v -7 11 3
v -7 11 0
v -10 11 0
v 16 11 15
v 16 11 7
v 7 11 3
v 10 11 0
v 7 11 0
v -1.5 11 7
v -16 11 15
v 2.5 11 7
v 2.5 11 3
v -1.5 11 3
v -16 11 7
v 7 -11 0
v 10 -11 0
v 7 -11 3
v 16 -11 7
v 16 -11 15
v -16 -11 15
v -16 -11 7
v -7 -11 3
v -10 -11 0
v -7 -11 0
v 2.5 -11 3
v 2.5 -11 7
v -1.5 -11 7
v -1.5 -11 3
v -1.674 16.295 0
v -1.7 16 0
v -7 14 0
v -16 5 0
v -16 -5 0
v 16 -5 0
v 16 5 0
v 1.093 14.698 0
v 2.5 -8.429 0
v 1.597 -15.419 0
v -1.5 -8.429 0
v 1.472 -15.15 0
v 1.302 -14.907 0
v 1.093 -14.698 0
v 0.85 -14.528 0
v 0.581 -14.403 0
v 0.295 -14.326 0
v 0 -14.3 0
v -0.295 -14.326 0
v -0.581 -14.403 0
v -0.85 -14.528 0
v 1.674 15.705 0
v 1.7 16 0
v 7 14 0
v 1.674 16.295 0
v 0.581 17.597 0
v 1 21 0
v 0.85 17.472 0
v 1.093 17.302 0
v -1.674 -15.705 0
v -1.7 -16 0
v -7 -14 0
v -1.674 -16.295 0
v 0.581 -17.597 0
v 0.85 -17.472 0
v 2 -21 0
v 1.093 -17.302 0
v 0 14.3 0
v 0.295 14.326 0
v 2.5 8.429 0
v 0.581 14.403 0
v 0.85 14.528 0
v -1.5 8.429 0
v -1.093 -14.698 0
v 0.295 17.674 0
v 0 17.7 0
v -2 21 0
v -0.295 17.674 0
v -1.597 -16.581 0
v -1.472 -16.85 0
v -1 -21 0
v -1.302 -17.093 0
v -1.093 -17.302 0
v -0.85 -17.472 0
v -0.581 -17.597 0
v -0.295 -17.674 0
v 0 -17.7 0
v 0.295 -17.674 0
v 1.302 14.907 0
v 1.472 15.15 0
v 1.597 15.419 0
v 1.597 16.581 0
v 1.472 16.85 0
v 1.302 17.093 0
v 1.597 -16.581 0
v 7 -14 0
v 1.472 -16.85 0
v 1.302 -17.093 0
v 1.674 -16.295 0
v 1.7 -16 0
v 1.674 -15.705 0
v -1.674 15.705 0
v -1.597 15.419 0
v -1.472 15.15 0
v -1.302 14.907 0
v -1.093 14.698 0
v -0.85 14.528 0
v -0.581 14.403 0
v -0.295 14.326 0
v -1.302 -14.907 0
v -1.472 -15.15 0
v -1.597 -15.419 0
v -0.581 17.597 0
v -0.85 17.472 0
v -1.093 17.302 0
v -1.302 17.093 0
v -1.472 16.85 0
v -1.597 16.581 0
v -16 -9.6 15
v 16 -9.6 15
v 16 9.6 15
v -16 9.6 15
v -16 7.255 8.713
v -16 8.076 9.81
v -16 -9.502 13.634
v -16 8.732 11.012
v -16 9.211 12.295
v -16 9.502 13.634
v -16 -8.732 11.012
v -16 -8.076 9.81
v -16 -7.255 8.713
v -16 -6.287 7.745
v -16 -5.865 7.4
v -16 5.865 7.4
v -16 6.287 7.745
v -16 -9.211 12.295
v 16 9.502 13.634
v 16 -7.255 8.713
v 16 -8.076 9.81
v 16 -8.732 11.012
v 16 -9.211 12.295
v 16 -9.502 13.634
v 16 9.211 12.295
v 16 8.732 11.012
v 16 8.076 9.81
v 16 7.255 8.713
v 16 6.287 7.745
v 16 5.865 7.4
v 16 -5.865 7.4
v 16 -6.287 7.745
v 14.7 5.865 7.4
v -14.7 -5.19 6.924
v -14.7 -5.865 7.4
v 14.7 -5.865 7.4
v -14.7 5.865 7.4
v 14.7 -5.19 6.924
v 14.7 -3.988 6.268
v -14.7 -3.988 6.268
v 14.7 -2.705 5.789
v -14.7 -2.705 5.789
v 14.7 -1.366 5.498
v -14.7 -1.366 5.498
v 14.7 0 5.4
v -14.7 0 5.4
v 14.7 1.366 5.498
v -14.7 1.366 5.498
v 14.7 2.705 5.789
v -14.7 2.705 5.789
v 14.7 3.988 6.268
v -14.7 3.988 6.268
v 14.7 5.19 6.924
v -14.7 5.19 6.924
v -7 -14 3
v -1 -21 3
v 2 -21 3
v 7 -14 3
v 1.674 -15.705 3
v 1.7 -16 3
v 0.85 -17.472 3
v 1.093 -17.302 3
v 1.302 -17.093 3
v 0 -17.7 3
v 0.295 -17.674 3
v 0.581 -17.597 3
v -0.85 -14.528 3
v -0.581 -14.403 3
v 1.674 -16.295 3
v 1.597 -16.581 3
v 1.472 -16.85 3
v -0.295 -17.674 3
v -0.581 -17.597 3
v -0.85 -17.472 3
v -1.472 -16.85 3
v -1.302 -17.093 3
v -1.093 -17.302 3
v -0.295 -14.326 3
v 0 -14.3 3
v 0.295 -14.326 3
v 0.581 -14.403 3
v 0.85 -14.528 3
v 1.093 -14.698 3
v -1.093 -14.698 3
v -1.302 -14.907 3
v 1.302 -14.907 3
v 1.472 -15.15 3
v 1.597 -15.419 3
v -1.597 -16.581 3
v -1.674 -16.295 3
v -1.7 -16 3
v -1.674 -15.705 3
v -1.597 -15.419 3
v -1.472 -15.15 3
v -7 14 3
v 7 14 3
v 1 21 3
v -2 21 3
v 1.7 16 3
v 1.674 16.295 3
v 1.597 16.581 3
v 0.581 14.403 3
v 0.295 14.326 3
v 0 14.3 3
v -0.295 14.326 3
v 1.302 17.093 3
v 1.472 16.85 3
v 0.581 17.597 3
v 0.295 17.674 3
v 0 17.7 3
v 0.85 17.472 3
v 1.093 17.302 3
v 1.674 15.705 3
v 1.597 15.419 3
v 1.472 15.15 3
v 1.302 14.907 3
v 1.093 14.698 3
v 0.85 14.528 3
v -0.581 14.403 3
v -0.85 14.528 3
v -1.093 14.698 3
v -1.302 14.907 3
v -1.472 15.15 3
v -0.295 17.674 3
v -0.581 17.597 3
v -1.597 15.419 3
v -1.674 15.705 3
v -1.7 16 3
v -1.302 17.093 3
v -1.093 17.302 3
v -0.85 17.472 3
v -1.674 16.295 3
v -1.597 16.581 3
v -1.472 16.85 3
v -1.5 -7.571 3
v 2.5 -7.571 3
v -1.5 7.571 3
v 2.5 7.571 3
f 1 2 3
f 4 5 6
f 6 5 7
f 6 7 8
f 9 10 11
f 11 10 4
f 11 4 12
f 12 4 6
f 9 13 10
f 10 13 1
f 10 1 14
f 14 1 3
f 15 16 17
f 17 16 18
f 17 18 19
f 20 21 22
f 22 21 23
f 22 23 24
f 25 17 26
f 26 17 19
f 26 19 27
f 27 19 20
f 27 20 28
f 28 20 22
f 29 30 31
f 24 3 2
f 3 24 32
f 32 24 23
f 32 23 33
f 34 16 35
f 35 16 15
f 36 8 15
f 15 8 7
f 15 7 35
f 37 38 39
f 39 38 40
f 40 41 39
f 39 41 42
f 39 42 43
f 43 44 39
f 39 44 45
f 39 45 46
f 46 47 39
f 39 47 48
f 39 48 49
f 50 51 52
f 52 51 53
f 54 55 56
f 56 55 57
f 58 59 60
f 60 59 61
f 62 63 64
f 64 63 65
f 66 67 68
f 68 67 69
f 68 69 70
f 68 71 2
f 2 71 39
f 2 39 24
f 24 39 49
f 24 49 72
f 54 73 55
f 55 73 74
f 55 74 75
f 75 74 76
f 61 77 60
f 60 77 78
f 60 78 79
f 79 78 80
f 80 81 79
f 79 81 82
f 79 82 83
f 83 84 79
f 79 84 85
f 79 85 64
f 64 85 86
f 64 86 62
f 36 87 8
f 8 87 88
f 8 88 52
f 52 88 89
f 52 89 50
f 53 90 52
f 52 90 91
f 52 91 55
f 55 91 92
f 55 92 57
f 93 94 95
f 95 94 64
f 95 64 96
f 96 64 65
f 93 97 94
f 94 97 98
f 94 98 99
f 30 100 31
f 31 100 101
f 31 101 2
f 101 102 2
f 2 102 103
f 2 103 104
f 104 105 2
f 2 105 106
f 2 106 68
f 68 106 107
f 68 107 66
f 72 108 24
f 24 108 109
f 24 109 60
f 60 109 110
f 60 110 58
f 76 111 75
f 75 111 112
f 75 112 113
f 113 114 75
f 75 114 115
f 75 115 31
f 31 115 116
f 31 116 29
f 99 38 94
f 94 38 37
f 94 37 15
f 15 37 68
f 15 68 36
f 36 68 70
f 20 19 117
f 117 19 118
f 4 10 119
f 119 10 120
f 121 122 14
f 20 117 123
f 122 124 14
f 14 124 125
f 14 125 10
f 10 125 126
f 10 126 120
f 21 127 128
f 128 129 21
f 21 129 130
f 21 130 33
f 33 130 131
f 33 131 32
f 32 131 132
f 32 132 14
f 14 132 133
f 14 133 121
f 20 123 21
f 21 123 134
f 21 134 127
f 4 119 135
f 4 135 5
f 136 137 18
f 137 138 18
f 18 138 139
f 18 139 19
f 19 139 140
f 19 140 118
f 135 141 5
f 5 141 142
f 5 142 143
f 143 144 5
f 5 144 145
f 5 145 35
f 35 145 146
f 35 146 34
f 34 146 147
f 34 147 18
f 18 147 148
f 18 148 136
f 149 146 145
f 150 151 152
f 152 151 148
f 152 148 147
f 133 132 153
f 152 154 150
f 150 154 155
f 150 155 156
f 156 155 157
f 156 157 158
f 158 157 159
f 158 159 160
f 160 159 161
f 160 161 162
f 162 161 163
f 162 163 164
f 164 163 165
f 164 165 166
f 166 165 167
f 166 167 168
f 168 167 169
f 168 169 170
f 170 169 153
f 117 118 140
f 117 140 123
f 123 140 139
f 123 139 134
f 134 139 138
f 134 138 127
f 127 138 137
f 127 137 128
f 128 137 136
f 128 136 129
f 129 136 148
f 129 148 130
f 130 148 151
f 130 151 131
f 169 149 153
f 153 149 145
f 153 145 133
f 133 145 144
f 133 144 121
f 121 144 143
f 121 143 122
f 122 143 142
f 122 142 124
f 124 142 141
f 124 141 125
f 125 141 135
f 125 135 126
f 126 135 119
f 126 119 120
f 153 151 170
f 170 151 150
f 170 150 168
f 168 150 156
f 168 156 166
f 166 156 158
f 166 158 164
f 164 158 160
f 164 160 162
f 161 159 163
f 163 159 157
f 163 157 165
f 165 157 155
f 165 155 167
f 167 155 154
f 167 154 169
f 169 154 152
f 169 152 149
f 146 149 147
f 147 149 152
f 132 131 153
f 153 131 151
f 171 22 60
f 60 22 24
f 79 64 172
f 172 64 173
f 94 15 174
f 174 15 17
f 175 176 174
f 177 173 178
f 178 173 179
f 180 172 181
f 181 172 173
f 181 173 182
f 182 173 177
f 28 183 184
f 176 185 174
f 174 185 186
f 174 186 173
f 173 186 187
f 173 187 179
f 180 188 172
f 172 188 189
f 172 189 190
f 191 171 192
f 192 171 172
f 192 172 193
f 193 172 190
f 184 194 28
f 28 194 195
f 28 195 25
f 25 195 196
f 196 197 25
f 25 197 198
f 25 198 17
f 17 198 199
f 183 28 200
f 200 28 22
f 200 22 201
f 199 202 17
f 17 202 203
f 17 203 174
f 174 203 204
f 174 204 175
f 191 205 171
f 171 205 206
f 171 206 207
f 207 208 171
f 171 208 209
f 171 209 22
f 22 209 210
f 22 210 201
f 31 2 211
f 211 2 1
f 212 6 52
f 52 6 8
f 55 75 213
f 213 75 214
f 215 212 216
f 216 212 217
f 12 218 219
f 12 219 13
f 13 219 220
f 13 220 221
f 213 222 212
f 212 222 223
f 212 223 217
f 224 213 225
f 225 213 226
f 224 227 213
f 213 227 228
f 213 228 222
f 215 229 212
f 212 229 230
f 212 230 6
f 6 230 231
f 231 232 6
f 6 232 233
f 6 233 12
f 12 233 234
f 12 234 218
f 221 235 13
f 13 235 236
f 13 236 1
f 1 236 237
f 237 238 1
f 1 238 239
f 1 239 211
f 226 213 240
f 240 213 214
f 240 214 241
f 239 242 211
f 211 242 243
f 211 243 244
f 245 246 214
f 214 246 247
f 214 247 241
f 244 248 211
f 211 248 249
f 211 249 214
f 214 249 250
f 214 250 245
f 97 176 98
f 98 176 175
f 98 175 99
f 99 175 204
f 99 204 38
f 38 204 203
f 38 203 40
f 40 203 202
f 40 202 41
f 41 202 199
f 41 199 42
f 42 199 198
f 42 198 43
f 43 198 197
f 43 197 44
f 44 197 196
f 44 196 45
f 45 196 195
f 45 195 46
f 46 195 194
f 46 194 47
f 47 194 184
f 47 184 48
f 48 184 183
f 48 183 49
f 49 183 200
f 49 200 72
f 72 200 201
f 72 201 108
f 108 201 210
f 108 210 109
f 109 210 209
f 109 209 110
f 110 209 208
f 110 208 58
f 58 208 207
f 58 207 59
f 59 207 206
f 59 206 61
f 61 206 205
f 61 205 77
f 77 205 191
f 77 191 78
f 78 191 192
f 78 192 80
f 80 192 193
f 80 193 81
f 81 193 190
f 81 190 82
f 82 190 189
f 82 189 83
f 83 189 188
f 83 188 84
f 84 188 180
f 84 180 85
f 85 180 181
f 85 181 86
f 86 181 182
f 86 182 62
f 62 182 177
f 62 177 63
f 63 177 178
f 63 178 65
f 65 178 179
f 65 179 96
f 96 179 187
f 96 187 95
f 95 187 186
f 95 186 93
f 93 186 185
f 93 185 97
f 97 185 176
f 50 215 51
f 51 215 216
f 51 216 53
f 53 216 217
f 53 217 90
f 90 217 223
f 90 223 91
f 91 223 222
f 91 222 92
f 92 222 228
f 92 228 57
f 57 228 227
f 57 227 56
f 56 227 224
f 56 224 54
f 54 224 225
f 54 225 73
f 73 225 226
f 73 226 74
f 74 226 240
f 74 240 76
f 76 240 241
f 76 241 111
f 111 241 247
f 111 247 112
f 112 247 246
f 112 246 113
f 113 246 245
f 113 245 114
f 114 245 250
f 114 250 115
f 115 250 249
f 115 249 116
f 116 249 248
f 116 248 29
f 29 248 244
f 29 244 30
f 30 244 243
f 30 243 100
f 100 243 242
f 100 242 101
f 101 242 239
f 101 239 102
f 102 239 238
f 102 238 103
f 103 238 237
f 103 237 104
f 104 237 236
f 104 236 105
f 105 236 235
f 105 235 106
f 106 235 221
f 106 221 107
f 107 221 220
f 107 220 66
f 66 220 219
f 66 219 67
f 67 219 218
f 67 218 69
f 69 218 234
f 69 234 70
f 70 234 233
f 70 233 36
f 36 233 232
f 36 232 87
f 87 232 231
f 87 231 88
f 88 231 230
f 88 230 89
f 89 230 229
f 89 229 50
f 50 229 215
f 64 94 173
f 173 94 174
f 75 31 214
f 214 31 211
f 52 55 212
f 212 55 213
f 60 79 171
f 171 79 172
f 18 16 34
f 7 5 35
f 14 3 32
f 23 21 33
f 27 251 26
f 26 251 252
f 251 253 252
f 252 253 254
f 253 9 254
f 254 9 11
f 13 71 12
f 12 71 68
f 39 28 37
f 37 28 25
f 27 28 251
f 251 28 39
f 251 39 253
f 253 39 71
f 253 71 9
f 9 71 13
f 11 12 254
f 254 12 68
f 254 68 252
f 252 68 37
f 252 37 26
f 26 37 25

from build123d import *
from OCP.BRepFilletAPI import BRepFilletAPI_MakeChamfer
from build123d.topology import SkipClean

# Parameters (mm, degrees)
BOSS_EXTRU_1_DEPTH           = 15
ENL_V_START                  = -1.3
ESQUISSE2_R                  = 9.6
ENL_V_MAT_EXTRU_1_DEPTH      = 29.4
ENL_V_MAT_EXTRU_2_DEPTH      = 36.895542898805694
ENL_V_MAT_EXTRU_2_DEPTH_BACK = 36.895542898805694
BOSS_EXTRU_2_DEPTH           = 3
ESQUISSE6_R                  = 1.7
ENL_V_MAT_EXTRU_3_DEPTH      = 30.000000000000014
CHANFREIN1_SIZE              = 5
CHANFREIN1_SIZE2             = 7
CHANFREIN2_SIZE              = 7
CHANFREIN2_SIZE2             = 6
CHANFREIN3_START             = 12.698865856
CHANFREIN3_OUTLINE_W         = 11
CHANFREIN3_OUTLINE_H         = 12.000000000000002
CHANFREIN3_DEPTH             = 4.301134144
CHANFREIN4_START             = 12.698865856
CHANFREIN4_OUTLINE_W         = 11
CHANFREIN4_OUTLINE_H         = 12.000000000000002
CHANFREIN4_DEPTH             = 4.301134144
CHANFREIN5_START             = -17
CHANFREIN5_OUTLINE_W         = 11
CHANFREIN5_OUTLINE_H         = 12.000000000000002
CHANFREIN5_DEPTH             = 4.301134144
CHANFREIN6_START             = -17
CHANFREIN6_OUTLINE_W         = 11
CHANFREIN6_OUTLINE_H         = 12.000000000000002
CHANFREIN6_DEPTH             = 4.301134144
ENL_V_START_2                = -13.5
ENL_V_MAT_EXTRU_4_DEPTH      = 4


with BuildPart() as part:
    # Esquisse1 → Boss.-Extru.1 (new body)
    with BuildSketch(Plane.XY):
        Polygon((-16.000000000000007, 11.000000000000002), (15.999999999999993, 11.000000000000002), (15.999999999999996, -11), (-16, -11), align=None)
    extrude(amount=BOSS_EXTRU_1_DEPTH)

    # Esquisse2 → Enlèv. mat.-Extru.1 (cut)
    with BuildSketch(Plane(origin=(15.999999999999996, 2.52e-15, 0), x_dir=(0, 0, -1), z_dir=(1, 1.6e-16, 0)).offset(ENL_V_START)):
        with Locations((-15, -1.73e-15)):
            Circle(ESQUISSE2_R)
    extrude(amount=-ENL_V_MAT_EXTRU_1_DEPTH, mode=Mode.SUBTRACT)

    # Esquisse4 → Enlèv. mat.-Extru.2 (cut, two sides: drawn at the far end of the back side and taken through both)
    with SkipClean():  # the faces are left unmerged after this step: merging them gives an invalid solid
        with BuildSketch(Plane(origin=(-14.700000000000001, -2.32e-15, 0), x_dir=(0, 0, -1), z_dir=(1, 1.6e-16, 0)).offset(-ENL_V_MAT_EXTRU_2_DEPTH_BACK)):
            with BuildLine():
                Line((-7.3999999999999995, -5.865151319446073), (-7.3999999999999995, 5.865151319446073))
                ThreePointArc((-7.3999999999999995, 5.865151319446073), (-10.76593886833709, 8.615841591704243), (-15.000000000000032, 9.599999999999998))
                Line((-15.000000000000032, 9.599999999999998), (-15, -9.600000000000001))
                ThreePointArc((-15, -9.600000000000001), (-10.765938868337066, -8.615841591704251), (-7.3999999999999995, -5.865151319446073))
            make_face()
        extrude(amount=ENL_V_MAT_EXTRU_2_DEPTH + ENL_V_MAT_EXTRU_2_DEPTH_BACK, mode=Mode.SUBTRACT)

    # Esquisse5 → Boss.-Extru.2 (add)
    with BuildSketch(Plane(origin=(0, 0, 0), x_dir=(-1, 0, 0), z_dir=(0, 0, -1))):
        Polygon((7.000000000000008, -11), (-6.999999999999992, -11.000000000000002), (-6.999999999999991, -20.999999999999993), (7.000000000000009, -20.999999999999996), align=None)
        Polygon((7.000000000000006, 11.000000000000002), (-6.999999999999994, 11), (-6.999999999999992, 20.999999999999996), (7.000000000000008, 20.999999999999996), align=None)
    extrude(amount=-BOSS_EXTRU_2_DEPTH)

    # Esquisse6 → Enlèv. mat.-Extru.3 (cut, through all)
    with BuildSketch(Plane.XY.offset(3)):
        with Locations((0, -15.999999999999996)):
            Circle(ESQUISSE6_R)
        with Locations((8.7e-16, 15.999999999999996)):
            Circle(ESQUISSE6_R)
    extrude(amount=-ENL_V_MAT_EXTRU_3_DEPTH, mode=Mode.SUBTRACT)

    # Chanfrein1: one chamfer whose edges measure the first distance from different faces: ONE call of the kernel's chamfer builder (chamfer() names one face for all edges)
    chanfrein1_edges_1 = [part.edges().sort_by_distance(p)[0] for p in [
        (6.999999999999991, -20.999999999999993, 1.5),
    ]]
    chanfrein1_side_1 = [part.faces().sort_by_distance(p)[0] for p in [
        (-9.13e-15, -20.999999999999993, 1.5),
    ]]
    chanfrein1_edges_2 = [part.edges().sort_by_distance(p)[0] for p in [
        (-7.000000000000008, 20.999999999999996, 1.5),
    ]]
    chanfrein1_side_2 = [part.faces().sort_by_distance(p)[0] for p in [
        (-8.24e-15, 20.999999999999996, 1.5),
    ]]
    chanfrein1 = BRepFilletAPI_MakeChamfer(part.part.solid().wrapped)
    for e in chanfrein1_edges_1:
        chanfrein1.Add(CHANFREIN1_SIZE, CHANFREIN1_SIZE2, e.wrapped, chanfrein1_side_1[0].wrapped)  # the first distance lies on this face
    for e in chanfrein1_edges_2:
        chanfrein1.Add(CHANFREIN1_SIZE, CHANFREIN1_SIZE2, e.wrapped, chanfrein1_side_2[0].wrapped)  # the first distance lies on this face
    add(Compound.cast(chanfrein1.Shape()), mode=Mode.REPLACE)

    # Chanfrein2: one chamfer whose edges measure the first distance from different faces: ONE call of the kernel's chamfer builder (chamfer() names one face for all edges)
    chanfrein2_edges_1 = [part.edges().sort_by_distance(p)[0] for p in [
        (6.999999999999992, 20.999999999999996, 1.5),
    ]]
    chanfrein2_side_1 = [part.faces().sort_by_distance(p)[0] for p in [
        (6.999999999999993, 15.999999999999998, 1.5),
    ]]
    chanfrein2_edges_2 = [part.edges().sort_by_distance(p)[0] for p in [
        (-7.000000000000009, -20.999999999999996, 1.5),
    ]]
    chanfrein2_side_2 = [part.faces().sort_by_distance(p)[0] for p in [
        (-7.000000000000009, -15.999999999999998, 1.5),
    ]]
    chanfrein2 = BRepFilletAPI_MakeChamfer(part.part.solid().wrapped)
    for e in chanfrein2_edges_1:
        chanfrein2.Add(CHANFREIN2_SIZE, CHANFREIN2_SIZE2, e.wrapped, chanfrein2_side_1[0].wrapped)  # the first distance lies on this face
    for e in chanfrein2_edges_2:
        chanfrein2.Add(CHANFREIN2_SIZE, CHANFREIN2_SIZE2, e.wrapped, chanfrein2_side_2[0].wrapped)  # the first distance lies on this face
    add(Compound.cast(chanfrein2.Shape()), mode=Mode.REPLACE)

    # Chanfrein3: read off the stored shape, not the designer's step
    # Chanfrein3 outline → Chanfrein3 (cut)
    with BuildSketch(Plane(origin=(0, 0, 0), x_dir=(0.7964473354898962, 0.4591284639882932, 0.39353868341853704), z_dir=(0.6047078979069521, -0.6047078979069521, -0.5183210553488161)).offset(CHANFREIN3_START)):
        with Locations((6.5, 8)):
            Rectangle(CHANFREIN3_OUTLINE_W, CHANFREIN3_OUTLINE_H)
    extrude(amount=CHANFREIN3_DEPTH, mode=Mode.SUBTRACT)

    # Chanfrein4: read off the stored shape, not the designer's step
    # Chanfrein4 outline → Chanfrein4 (cut)
    with BuildSketch(Plane(origin=(0, 0, 0), x_dir=(0.7964473354898962, -0.45912846398829327, 0.39353868341853704), z_dir=(0.6047078979069521, 0.6047078979069522, -0.5183210553488161)).offset(CHANFREIN4_START)):
        with Locations((6.5, -8)):
            Rectangle(CHANFREIN4_OUTLINE_W, CHANFREIN4_OUTLINE_H)
    extrude(amount=CHANFREIN4_DEPTH, mode=Mode.SUBTRACT)

    # Chanfrein5: read off the stored shape, not the designer's step
    # Chanfrein5 outline → Chanfrein5 (cut)
    with BuildSketch(Plane(origin=(0, 0, 0), x_dir=(0.7964473354898962, 0.45912846398829327, -0.39353868341853704), z_dir=(0.6047078979069521, -0.6047078979069522, 0.5183210553488161)).offset(CHANFREIN5_START)):
        with Locations((-6.5, 8)):
            Rectangle(CHANFREIN5_OUTLINE_W, CHANFREIN5_OUTLINE_H)
    extrude(amount=CHANFREIN5_DEPTH, mode=Mode.SUBTRACT)

    # Chanfrein6: read off the stored shape, not the designer's step
    # Chanfrein6 outline → Chanfrein6 (cut)
    with BuildSketch(Plane(origin=(0, 0, 0), x_dir=(0.7964473354898959, -0.4591284639882932, -0.3935386834185371), z_dir=(0.6047078979069522, 0.6047078979069521, 0.5183210553488161)).offset(CHANFREIN6_START)):
        with Locations((-6.5, -8)):
            Rectangle(CHANFREIN6_OUTLINE_W, CHANFREIN6_OUTLINE_H)
    extrude(amount=CHANFREIN6_DEPTH, mode=Mode.SUBTRACT)

    # Esquisse7 → Enlèv. mat.-Extru.4 (cut)
    with BuildSketch(Plane(origin=(15.999999999999996, 2.52e-15, 0), x_dir=(0, 0, -1), z_dir=(1, 1.6e-16, 0)).offset(ENL_V_START_2)):
        Polygon((-3, -7.571428571428581), (-3, 7.571428571428564), (-7.000000000000009, 11), (-3.000000000000009, 11), (-4.5e-16, 8.428571428571422), (1.83e-15, -8.428571428571436), (-2.999999999999989, -11.000000000000002), (-6.9999999999999885, -11.000000000000002), align=None)
    extrude(amount=-ENL_V_MAT_EXTRU_4_DEPTH, mode=Mode.SUBTRACT)


solid = part.part
